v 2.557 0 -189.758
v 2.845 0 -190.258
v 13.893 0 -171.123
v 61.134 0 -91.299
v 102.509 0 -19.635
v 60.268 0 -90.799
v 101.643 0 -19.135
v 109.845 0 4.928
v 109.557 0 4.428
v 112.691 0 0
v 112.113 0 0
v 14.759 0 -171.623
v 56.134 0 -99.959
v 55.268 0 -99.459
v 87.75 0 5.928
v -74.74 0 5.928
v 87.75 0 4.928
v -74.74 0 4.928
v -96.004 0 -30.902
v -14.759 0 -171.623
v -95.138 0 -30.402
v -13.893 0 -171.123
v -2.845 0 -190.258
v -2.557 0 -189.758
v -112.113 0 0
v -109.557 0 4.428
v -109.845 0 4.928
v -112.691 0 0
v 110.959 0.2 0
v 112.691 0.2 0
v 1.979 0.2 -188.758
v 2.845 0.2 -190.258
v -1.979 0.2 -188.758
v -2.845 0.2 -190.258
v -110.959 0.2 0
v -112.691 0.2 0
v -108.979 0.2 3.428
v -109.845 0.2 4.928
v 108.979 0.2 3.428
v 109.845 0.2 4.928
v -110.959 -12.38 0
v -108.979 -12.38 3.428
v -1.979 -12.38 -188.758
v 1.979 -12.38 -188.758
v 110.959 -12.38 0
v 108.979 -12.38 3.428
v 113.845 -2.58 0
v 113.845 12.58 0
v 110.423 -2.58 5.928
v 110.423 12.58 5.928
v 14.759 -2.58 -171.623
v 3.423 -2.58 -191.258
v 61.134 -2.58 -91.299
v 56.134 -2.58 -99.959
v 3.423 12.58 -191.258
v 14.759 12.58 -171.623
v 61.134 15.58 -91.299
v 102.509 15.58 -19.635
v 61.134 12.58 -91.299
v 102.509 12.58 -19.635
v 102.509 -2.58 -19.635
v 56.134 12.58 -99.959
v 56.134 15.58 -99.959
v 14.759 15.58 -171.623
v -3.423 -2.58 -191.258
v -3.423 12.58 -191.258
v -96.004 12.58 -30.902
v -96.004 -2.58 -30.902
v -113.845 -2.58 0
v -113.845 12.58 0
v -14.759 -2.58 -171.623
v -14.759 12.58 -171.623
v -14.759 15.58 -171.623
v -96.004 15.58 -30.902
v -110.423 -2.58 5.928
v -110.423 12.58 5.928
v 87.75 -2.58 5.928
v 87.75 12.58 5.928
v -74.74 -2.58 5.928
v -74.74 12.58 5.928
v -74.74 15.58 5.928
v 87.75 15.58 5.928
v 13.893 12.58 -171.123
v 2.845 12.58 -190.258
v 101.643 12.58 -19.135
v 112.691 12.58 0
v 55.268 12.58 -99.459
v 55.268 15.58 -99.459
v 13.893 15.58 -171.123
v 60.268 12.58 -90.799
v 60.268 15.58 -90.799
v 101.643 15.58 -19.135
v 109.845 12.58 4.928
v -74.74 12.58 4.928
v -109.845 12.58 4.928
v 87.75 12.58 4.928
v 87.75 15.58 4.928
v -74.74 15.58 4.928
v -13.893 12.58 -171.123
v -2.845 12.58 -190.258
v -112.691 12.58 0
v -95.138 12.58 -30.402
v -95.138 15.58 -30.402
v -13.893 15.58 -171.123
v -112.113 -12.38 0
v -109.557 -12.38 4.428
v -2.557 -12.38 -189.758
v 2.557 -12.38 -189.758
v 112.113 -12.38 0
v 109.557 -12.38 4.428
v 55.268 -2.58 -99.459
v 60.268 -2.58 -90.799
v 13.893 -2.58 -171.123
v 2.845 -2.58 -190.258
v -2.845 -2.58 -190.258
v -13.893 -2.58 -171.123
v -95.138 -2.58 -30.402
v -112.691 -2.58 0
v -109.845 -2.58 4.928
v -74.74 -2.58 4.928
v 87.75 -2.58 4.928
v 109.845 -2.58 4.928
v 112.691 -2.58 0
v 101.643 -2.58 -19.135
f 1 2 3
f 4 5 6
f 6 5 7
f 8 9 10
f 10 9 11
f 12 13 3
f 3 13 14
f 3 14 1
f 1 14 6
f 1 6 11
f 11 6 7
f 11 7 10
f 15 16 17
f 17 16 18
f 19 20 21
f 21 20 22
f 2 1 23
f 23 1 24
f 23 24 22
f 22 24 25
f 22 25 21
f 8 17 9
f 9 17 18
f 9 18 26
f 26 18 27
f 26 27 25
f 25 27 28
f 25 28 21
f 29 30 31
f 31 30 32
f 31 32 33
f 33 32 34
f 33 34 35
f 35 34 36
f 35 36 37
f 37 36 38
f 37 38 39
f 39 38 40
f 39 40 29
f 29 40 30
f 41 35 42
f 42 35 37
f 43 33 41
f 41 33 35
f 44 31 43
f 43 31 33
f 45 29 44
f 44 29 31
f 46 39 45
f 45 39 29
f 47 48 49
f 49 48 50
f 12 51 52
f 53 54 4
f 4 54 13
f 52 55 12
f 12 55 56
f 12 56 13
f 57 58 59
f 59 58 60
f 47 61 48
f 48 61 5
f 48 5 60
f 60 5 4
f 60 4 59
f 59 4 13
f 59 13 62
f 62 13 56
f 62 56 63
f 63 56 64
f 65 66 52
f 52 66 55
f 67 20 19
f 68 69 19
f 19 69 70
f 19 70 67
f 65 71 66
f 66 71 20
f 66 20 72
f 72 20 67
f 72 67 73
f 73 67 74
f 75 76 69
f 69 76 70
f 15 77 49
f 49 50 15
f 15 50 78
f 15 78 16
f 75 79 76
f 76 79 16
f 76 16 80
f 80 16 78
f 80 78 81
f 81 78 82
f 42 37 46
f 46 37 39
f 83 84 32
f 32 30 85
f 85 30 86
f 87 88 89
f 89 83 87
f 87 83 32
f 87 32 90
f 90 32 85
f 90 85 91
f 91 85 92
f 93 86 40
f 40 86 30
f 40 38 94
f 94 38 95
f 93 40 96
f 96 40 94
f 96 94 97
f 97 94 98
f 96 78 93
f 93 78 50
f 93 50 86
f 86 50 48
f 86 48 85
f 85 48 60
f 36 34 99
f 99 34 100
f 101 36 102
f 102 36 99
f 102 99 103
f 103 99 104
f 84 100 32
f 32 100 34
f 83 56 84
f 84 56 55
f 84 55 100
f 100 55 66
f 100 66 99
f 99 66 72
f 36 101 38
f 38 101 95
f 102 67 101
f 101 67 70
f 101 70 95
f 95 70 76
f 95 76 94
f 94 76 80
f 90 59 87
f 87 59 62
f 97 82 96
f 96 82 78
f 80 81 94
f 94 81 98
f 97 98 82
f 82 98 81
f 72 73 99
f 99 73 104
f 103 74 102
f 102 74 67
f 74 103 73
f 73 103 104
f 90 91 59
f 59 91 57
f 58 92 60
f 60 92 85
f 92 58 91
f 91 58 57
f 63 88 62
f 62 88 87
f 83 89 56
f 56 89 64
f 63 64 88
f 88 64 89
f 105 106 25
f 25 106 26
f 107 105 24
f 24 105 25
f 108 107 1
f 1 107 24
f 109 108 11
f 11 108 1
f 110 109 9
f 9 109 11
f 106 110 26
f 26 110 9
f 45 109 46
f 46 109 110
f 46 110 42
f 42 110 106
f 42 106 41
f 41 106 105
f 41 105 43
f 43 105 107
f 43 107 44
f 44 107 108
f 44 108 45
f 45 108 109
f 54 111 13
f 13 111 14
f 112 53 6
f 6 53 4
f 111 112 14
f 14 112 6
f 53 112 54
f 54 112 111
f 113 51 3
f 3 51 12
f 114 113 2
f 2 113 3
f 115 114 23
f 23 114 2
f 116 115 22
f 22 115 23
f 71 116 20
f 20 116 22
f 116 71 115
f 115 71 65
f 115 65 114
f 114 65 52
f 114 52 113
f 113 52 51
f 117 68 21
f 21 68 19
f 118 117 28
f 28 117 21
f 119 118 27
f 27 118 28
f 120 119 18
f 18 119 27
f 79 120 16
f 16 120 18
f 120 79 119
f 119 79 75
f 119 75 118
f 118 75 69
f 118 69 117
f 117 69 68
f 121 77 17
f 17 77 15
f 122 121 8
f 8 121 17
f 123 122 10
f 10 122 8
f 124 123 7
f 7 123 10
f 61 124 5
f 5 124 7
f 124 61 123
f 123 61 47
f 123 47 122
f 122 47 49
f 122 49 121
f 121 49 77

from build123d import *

# Parameters (mm, degrees)
BOSS_EXTRUDE1_DEPTH = 0.2
BOSS_EXTRUDE2_DEPTH = 12.58
SKETCH1_8_W         = 162.49
SKETCH1_8_H         = 1
BOSS_EXTRUDE3_DEPTH = 15.58
BOSS_EXTRUDE4_DEPTH = 12.38
BOSS_EXTRUDE5_DEPTH = 2.58


with BuildPart() as part:
    # Sketch1 → Boss-Extrude1 (new body)
    with BuildSketch(Plane(origin=(0, 0, 0), x_dir=(1, 0, 0), z_dir=(0, 1, 0))):
        Polygon((-113.845299462, 0), (-110.422649731, -5.92820323), (110.422649731, -5.92820323), (113.845299462, 0), (3.422649731, 191.25763964), (-3.422649731, 191.25763964), align=None)
        Polygon((-1.979274058, 188.75763964), (1.979274058, 188.75763964), (110.958548116, 0), (108.979274058, -3.42820323), (-108.979274058, -3.42820323), (-110.958548116, 0), align=None, mode=Mode.SUBTRACT)
    extrude(amount=BOSS_EXTRUDE1_DEPTH)

    # Sketch1<7> → Boss-Extrude2 (add)
    with BuildSketch(Plane(origin=(0, 0, 0), x_dir=(1, 0, 0), z_dir=(0, 1, 0))):
        Polygon((-95.137949192, 30.402081141), (-96.003974596, 30.902081141), (-113.845299462, 0), (-110.422649731, -5.92820323), (-74.74, -5.92820323), (-74.74, -4.92820323), (-109.845299462, -4.92820323), (-112.690598923, 0), align=None)
        Polygon((-3.422649731, 191.25763964), (-14.758974596, 171.622549002), (-13.892949192, 171.122549002), (-2.845299462, 190.25763964), (2.845299462, 190.25763964), (13.892949192, 171.122549002), (14.758974596, 171.622549002), (3.422649731, 191.25763964), align=None)
        Polygon((109.845299462, -4.92820323), (87.75, -4.92820323), (87.75, -5.92820323), (110.422649731, -5.92820323), (113.845299462, 0), (102.508974596, 19.635090638), (101.642949192, 19.135090638), (112.690598923, 0), align=None)
        Polygon((61.133974596, 91.298692801), (56.133974596, 99.958946839), (55.267949192, 99.458946839), (60.267949192, 90.798692801), align=None)
    extrude(amount=BOSS_EXTRUDE2_DEPTH)

    # Sketch1<8> → Boss-Extrude3 (add)
    with BuildSketch(Plane(origin=(0, 0, 0), x_dir=(1, 0, 0), z_dir=(0, 1, 0))):
        Polygon((-14.758974596, 171.622549002), (-96.003974596, 30.902081141), (-95.137949192, 30.402081141), (-13.892949192, 171.122549002), align=None)
        with Locations((6.505, -5.42820323)):
            Rectangle(SKETCH1_8_W, SKETCH1_8_H)
        Polygon((56.133974596, 99.958946839), (14.758974596, 171.622549002), (13.892949192, 171.122549002), (55.267949192, 99.458946839), align=None)
        Polygon((102.508974596, 19.635090638), (61.133974596, 91.298692801), (60.267949192, 90.798692801), (101.642949192, 19.135090638), align=None)
    extrude(amount=BOSS_EXTRUDE3_DEPTH)

    # Sketch1<9> → Boss-Extrude4 (add)
    with BuildSketch(Plane(origin=(0, 0, 0), x_dir=(1, 0, 0), z_dir=(0, 1, 0))):
        Polygon((-112.113248654, 0), (-110.834936491, -2.214101615), (-109.556624327, -4.42820323), (109.556624327, -4.42820323), (112.113248654, 0), (2.556624327, 189.75763964), (-2.556624327, 189.75763964), align=None)
        Polygon((-110.958548116, 0), (-56.468911087, 94.37881982), (-1.979274058, 188.75763964), (1.979274058, 188.75763964), (110.958548116, 0), (108.979274058, -3.42820323), (-108.979274058, -3.42820323), align=None, mode=Mode.SUBTRACT)
    extrude(amount=-BOSS_EXTRUDE4_DEPTH)

    # Sketch1<10> → Boss-Extrude5 (add)
    with BuildSketch(Plane(origin=(0, 0, 0), x_dir=(1, 0, 0), z_dir=(0, 1, 0))):
        Polygon((-95.137949192, 30.402081141), (-96.003974596, 30.902081141), (-113.845299462, 0), (-110.422649731, -5.92820323), (-74.74, -5.92820323), (-74.74, -4.92820323), (-109.845299462, -4.92820323), (-112.690598923, 0), align=None)
        Polygon((-3.422649731, 191.25763964), (-14.758974596, 171.622549002), (-13.892949192, 171.122549002), (-2.845299462, 190.25763964), (2.845299462, 190.25763964), (13.892949192, 171.122549002), (14.758974596, 171.622549002), (3.422649731, 191.25763964), align=None)
        Polygon((109.845299462, -4.92820323), (87.75, -4.92820323), (87.75, -5.92820323), (110.422649731, -5.92820323), (113.845299462, 0), (102.508974596, 19.635090638), (101.642949192, 19.135090638), (112.690598923, 0), align=None)
        Polygon((61.133974596, 91.298692801), (56.133974596, 99.958946839), (55.267949192, 99.458946839), (60.267949192, 90.798692801), align=None)
    extrude(amount=-BOSS_EXTRUDE5_DEPTH)


solid = part.part
